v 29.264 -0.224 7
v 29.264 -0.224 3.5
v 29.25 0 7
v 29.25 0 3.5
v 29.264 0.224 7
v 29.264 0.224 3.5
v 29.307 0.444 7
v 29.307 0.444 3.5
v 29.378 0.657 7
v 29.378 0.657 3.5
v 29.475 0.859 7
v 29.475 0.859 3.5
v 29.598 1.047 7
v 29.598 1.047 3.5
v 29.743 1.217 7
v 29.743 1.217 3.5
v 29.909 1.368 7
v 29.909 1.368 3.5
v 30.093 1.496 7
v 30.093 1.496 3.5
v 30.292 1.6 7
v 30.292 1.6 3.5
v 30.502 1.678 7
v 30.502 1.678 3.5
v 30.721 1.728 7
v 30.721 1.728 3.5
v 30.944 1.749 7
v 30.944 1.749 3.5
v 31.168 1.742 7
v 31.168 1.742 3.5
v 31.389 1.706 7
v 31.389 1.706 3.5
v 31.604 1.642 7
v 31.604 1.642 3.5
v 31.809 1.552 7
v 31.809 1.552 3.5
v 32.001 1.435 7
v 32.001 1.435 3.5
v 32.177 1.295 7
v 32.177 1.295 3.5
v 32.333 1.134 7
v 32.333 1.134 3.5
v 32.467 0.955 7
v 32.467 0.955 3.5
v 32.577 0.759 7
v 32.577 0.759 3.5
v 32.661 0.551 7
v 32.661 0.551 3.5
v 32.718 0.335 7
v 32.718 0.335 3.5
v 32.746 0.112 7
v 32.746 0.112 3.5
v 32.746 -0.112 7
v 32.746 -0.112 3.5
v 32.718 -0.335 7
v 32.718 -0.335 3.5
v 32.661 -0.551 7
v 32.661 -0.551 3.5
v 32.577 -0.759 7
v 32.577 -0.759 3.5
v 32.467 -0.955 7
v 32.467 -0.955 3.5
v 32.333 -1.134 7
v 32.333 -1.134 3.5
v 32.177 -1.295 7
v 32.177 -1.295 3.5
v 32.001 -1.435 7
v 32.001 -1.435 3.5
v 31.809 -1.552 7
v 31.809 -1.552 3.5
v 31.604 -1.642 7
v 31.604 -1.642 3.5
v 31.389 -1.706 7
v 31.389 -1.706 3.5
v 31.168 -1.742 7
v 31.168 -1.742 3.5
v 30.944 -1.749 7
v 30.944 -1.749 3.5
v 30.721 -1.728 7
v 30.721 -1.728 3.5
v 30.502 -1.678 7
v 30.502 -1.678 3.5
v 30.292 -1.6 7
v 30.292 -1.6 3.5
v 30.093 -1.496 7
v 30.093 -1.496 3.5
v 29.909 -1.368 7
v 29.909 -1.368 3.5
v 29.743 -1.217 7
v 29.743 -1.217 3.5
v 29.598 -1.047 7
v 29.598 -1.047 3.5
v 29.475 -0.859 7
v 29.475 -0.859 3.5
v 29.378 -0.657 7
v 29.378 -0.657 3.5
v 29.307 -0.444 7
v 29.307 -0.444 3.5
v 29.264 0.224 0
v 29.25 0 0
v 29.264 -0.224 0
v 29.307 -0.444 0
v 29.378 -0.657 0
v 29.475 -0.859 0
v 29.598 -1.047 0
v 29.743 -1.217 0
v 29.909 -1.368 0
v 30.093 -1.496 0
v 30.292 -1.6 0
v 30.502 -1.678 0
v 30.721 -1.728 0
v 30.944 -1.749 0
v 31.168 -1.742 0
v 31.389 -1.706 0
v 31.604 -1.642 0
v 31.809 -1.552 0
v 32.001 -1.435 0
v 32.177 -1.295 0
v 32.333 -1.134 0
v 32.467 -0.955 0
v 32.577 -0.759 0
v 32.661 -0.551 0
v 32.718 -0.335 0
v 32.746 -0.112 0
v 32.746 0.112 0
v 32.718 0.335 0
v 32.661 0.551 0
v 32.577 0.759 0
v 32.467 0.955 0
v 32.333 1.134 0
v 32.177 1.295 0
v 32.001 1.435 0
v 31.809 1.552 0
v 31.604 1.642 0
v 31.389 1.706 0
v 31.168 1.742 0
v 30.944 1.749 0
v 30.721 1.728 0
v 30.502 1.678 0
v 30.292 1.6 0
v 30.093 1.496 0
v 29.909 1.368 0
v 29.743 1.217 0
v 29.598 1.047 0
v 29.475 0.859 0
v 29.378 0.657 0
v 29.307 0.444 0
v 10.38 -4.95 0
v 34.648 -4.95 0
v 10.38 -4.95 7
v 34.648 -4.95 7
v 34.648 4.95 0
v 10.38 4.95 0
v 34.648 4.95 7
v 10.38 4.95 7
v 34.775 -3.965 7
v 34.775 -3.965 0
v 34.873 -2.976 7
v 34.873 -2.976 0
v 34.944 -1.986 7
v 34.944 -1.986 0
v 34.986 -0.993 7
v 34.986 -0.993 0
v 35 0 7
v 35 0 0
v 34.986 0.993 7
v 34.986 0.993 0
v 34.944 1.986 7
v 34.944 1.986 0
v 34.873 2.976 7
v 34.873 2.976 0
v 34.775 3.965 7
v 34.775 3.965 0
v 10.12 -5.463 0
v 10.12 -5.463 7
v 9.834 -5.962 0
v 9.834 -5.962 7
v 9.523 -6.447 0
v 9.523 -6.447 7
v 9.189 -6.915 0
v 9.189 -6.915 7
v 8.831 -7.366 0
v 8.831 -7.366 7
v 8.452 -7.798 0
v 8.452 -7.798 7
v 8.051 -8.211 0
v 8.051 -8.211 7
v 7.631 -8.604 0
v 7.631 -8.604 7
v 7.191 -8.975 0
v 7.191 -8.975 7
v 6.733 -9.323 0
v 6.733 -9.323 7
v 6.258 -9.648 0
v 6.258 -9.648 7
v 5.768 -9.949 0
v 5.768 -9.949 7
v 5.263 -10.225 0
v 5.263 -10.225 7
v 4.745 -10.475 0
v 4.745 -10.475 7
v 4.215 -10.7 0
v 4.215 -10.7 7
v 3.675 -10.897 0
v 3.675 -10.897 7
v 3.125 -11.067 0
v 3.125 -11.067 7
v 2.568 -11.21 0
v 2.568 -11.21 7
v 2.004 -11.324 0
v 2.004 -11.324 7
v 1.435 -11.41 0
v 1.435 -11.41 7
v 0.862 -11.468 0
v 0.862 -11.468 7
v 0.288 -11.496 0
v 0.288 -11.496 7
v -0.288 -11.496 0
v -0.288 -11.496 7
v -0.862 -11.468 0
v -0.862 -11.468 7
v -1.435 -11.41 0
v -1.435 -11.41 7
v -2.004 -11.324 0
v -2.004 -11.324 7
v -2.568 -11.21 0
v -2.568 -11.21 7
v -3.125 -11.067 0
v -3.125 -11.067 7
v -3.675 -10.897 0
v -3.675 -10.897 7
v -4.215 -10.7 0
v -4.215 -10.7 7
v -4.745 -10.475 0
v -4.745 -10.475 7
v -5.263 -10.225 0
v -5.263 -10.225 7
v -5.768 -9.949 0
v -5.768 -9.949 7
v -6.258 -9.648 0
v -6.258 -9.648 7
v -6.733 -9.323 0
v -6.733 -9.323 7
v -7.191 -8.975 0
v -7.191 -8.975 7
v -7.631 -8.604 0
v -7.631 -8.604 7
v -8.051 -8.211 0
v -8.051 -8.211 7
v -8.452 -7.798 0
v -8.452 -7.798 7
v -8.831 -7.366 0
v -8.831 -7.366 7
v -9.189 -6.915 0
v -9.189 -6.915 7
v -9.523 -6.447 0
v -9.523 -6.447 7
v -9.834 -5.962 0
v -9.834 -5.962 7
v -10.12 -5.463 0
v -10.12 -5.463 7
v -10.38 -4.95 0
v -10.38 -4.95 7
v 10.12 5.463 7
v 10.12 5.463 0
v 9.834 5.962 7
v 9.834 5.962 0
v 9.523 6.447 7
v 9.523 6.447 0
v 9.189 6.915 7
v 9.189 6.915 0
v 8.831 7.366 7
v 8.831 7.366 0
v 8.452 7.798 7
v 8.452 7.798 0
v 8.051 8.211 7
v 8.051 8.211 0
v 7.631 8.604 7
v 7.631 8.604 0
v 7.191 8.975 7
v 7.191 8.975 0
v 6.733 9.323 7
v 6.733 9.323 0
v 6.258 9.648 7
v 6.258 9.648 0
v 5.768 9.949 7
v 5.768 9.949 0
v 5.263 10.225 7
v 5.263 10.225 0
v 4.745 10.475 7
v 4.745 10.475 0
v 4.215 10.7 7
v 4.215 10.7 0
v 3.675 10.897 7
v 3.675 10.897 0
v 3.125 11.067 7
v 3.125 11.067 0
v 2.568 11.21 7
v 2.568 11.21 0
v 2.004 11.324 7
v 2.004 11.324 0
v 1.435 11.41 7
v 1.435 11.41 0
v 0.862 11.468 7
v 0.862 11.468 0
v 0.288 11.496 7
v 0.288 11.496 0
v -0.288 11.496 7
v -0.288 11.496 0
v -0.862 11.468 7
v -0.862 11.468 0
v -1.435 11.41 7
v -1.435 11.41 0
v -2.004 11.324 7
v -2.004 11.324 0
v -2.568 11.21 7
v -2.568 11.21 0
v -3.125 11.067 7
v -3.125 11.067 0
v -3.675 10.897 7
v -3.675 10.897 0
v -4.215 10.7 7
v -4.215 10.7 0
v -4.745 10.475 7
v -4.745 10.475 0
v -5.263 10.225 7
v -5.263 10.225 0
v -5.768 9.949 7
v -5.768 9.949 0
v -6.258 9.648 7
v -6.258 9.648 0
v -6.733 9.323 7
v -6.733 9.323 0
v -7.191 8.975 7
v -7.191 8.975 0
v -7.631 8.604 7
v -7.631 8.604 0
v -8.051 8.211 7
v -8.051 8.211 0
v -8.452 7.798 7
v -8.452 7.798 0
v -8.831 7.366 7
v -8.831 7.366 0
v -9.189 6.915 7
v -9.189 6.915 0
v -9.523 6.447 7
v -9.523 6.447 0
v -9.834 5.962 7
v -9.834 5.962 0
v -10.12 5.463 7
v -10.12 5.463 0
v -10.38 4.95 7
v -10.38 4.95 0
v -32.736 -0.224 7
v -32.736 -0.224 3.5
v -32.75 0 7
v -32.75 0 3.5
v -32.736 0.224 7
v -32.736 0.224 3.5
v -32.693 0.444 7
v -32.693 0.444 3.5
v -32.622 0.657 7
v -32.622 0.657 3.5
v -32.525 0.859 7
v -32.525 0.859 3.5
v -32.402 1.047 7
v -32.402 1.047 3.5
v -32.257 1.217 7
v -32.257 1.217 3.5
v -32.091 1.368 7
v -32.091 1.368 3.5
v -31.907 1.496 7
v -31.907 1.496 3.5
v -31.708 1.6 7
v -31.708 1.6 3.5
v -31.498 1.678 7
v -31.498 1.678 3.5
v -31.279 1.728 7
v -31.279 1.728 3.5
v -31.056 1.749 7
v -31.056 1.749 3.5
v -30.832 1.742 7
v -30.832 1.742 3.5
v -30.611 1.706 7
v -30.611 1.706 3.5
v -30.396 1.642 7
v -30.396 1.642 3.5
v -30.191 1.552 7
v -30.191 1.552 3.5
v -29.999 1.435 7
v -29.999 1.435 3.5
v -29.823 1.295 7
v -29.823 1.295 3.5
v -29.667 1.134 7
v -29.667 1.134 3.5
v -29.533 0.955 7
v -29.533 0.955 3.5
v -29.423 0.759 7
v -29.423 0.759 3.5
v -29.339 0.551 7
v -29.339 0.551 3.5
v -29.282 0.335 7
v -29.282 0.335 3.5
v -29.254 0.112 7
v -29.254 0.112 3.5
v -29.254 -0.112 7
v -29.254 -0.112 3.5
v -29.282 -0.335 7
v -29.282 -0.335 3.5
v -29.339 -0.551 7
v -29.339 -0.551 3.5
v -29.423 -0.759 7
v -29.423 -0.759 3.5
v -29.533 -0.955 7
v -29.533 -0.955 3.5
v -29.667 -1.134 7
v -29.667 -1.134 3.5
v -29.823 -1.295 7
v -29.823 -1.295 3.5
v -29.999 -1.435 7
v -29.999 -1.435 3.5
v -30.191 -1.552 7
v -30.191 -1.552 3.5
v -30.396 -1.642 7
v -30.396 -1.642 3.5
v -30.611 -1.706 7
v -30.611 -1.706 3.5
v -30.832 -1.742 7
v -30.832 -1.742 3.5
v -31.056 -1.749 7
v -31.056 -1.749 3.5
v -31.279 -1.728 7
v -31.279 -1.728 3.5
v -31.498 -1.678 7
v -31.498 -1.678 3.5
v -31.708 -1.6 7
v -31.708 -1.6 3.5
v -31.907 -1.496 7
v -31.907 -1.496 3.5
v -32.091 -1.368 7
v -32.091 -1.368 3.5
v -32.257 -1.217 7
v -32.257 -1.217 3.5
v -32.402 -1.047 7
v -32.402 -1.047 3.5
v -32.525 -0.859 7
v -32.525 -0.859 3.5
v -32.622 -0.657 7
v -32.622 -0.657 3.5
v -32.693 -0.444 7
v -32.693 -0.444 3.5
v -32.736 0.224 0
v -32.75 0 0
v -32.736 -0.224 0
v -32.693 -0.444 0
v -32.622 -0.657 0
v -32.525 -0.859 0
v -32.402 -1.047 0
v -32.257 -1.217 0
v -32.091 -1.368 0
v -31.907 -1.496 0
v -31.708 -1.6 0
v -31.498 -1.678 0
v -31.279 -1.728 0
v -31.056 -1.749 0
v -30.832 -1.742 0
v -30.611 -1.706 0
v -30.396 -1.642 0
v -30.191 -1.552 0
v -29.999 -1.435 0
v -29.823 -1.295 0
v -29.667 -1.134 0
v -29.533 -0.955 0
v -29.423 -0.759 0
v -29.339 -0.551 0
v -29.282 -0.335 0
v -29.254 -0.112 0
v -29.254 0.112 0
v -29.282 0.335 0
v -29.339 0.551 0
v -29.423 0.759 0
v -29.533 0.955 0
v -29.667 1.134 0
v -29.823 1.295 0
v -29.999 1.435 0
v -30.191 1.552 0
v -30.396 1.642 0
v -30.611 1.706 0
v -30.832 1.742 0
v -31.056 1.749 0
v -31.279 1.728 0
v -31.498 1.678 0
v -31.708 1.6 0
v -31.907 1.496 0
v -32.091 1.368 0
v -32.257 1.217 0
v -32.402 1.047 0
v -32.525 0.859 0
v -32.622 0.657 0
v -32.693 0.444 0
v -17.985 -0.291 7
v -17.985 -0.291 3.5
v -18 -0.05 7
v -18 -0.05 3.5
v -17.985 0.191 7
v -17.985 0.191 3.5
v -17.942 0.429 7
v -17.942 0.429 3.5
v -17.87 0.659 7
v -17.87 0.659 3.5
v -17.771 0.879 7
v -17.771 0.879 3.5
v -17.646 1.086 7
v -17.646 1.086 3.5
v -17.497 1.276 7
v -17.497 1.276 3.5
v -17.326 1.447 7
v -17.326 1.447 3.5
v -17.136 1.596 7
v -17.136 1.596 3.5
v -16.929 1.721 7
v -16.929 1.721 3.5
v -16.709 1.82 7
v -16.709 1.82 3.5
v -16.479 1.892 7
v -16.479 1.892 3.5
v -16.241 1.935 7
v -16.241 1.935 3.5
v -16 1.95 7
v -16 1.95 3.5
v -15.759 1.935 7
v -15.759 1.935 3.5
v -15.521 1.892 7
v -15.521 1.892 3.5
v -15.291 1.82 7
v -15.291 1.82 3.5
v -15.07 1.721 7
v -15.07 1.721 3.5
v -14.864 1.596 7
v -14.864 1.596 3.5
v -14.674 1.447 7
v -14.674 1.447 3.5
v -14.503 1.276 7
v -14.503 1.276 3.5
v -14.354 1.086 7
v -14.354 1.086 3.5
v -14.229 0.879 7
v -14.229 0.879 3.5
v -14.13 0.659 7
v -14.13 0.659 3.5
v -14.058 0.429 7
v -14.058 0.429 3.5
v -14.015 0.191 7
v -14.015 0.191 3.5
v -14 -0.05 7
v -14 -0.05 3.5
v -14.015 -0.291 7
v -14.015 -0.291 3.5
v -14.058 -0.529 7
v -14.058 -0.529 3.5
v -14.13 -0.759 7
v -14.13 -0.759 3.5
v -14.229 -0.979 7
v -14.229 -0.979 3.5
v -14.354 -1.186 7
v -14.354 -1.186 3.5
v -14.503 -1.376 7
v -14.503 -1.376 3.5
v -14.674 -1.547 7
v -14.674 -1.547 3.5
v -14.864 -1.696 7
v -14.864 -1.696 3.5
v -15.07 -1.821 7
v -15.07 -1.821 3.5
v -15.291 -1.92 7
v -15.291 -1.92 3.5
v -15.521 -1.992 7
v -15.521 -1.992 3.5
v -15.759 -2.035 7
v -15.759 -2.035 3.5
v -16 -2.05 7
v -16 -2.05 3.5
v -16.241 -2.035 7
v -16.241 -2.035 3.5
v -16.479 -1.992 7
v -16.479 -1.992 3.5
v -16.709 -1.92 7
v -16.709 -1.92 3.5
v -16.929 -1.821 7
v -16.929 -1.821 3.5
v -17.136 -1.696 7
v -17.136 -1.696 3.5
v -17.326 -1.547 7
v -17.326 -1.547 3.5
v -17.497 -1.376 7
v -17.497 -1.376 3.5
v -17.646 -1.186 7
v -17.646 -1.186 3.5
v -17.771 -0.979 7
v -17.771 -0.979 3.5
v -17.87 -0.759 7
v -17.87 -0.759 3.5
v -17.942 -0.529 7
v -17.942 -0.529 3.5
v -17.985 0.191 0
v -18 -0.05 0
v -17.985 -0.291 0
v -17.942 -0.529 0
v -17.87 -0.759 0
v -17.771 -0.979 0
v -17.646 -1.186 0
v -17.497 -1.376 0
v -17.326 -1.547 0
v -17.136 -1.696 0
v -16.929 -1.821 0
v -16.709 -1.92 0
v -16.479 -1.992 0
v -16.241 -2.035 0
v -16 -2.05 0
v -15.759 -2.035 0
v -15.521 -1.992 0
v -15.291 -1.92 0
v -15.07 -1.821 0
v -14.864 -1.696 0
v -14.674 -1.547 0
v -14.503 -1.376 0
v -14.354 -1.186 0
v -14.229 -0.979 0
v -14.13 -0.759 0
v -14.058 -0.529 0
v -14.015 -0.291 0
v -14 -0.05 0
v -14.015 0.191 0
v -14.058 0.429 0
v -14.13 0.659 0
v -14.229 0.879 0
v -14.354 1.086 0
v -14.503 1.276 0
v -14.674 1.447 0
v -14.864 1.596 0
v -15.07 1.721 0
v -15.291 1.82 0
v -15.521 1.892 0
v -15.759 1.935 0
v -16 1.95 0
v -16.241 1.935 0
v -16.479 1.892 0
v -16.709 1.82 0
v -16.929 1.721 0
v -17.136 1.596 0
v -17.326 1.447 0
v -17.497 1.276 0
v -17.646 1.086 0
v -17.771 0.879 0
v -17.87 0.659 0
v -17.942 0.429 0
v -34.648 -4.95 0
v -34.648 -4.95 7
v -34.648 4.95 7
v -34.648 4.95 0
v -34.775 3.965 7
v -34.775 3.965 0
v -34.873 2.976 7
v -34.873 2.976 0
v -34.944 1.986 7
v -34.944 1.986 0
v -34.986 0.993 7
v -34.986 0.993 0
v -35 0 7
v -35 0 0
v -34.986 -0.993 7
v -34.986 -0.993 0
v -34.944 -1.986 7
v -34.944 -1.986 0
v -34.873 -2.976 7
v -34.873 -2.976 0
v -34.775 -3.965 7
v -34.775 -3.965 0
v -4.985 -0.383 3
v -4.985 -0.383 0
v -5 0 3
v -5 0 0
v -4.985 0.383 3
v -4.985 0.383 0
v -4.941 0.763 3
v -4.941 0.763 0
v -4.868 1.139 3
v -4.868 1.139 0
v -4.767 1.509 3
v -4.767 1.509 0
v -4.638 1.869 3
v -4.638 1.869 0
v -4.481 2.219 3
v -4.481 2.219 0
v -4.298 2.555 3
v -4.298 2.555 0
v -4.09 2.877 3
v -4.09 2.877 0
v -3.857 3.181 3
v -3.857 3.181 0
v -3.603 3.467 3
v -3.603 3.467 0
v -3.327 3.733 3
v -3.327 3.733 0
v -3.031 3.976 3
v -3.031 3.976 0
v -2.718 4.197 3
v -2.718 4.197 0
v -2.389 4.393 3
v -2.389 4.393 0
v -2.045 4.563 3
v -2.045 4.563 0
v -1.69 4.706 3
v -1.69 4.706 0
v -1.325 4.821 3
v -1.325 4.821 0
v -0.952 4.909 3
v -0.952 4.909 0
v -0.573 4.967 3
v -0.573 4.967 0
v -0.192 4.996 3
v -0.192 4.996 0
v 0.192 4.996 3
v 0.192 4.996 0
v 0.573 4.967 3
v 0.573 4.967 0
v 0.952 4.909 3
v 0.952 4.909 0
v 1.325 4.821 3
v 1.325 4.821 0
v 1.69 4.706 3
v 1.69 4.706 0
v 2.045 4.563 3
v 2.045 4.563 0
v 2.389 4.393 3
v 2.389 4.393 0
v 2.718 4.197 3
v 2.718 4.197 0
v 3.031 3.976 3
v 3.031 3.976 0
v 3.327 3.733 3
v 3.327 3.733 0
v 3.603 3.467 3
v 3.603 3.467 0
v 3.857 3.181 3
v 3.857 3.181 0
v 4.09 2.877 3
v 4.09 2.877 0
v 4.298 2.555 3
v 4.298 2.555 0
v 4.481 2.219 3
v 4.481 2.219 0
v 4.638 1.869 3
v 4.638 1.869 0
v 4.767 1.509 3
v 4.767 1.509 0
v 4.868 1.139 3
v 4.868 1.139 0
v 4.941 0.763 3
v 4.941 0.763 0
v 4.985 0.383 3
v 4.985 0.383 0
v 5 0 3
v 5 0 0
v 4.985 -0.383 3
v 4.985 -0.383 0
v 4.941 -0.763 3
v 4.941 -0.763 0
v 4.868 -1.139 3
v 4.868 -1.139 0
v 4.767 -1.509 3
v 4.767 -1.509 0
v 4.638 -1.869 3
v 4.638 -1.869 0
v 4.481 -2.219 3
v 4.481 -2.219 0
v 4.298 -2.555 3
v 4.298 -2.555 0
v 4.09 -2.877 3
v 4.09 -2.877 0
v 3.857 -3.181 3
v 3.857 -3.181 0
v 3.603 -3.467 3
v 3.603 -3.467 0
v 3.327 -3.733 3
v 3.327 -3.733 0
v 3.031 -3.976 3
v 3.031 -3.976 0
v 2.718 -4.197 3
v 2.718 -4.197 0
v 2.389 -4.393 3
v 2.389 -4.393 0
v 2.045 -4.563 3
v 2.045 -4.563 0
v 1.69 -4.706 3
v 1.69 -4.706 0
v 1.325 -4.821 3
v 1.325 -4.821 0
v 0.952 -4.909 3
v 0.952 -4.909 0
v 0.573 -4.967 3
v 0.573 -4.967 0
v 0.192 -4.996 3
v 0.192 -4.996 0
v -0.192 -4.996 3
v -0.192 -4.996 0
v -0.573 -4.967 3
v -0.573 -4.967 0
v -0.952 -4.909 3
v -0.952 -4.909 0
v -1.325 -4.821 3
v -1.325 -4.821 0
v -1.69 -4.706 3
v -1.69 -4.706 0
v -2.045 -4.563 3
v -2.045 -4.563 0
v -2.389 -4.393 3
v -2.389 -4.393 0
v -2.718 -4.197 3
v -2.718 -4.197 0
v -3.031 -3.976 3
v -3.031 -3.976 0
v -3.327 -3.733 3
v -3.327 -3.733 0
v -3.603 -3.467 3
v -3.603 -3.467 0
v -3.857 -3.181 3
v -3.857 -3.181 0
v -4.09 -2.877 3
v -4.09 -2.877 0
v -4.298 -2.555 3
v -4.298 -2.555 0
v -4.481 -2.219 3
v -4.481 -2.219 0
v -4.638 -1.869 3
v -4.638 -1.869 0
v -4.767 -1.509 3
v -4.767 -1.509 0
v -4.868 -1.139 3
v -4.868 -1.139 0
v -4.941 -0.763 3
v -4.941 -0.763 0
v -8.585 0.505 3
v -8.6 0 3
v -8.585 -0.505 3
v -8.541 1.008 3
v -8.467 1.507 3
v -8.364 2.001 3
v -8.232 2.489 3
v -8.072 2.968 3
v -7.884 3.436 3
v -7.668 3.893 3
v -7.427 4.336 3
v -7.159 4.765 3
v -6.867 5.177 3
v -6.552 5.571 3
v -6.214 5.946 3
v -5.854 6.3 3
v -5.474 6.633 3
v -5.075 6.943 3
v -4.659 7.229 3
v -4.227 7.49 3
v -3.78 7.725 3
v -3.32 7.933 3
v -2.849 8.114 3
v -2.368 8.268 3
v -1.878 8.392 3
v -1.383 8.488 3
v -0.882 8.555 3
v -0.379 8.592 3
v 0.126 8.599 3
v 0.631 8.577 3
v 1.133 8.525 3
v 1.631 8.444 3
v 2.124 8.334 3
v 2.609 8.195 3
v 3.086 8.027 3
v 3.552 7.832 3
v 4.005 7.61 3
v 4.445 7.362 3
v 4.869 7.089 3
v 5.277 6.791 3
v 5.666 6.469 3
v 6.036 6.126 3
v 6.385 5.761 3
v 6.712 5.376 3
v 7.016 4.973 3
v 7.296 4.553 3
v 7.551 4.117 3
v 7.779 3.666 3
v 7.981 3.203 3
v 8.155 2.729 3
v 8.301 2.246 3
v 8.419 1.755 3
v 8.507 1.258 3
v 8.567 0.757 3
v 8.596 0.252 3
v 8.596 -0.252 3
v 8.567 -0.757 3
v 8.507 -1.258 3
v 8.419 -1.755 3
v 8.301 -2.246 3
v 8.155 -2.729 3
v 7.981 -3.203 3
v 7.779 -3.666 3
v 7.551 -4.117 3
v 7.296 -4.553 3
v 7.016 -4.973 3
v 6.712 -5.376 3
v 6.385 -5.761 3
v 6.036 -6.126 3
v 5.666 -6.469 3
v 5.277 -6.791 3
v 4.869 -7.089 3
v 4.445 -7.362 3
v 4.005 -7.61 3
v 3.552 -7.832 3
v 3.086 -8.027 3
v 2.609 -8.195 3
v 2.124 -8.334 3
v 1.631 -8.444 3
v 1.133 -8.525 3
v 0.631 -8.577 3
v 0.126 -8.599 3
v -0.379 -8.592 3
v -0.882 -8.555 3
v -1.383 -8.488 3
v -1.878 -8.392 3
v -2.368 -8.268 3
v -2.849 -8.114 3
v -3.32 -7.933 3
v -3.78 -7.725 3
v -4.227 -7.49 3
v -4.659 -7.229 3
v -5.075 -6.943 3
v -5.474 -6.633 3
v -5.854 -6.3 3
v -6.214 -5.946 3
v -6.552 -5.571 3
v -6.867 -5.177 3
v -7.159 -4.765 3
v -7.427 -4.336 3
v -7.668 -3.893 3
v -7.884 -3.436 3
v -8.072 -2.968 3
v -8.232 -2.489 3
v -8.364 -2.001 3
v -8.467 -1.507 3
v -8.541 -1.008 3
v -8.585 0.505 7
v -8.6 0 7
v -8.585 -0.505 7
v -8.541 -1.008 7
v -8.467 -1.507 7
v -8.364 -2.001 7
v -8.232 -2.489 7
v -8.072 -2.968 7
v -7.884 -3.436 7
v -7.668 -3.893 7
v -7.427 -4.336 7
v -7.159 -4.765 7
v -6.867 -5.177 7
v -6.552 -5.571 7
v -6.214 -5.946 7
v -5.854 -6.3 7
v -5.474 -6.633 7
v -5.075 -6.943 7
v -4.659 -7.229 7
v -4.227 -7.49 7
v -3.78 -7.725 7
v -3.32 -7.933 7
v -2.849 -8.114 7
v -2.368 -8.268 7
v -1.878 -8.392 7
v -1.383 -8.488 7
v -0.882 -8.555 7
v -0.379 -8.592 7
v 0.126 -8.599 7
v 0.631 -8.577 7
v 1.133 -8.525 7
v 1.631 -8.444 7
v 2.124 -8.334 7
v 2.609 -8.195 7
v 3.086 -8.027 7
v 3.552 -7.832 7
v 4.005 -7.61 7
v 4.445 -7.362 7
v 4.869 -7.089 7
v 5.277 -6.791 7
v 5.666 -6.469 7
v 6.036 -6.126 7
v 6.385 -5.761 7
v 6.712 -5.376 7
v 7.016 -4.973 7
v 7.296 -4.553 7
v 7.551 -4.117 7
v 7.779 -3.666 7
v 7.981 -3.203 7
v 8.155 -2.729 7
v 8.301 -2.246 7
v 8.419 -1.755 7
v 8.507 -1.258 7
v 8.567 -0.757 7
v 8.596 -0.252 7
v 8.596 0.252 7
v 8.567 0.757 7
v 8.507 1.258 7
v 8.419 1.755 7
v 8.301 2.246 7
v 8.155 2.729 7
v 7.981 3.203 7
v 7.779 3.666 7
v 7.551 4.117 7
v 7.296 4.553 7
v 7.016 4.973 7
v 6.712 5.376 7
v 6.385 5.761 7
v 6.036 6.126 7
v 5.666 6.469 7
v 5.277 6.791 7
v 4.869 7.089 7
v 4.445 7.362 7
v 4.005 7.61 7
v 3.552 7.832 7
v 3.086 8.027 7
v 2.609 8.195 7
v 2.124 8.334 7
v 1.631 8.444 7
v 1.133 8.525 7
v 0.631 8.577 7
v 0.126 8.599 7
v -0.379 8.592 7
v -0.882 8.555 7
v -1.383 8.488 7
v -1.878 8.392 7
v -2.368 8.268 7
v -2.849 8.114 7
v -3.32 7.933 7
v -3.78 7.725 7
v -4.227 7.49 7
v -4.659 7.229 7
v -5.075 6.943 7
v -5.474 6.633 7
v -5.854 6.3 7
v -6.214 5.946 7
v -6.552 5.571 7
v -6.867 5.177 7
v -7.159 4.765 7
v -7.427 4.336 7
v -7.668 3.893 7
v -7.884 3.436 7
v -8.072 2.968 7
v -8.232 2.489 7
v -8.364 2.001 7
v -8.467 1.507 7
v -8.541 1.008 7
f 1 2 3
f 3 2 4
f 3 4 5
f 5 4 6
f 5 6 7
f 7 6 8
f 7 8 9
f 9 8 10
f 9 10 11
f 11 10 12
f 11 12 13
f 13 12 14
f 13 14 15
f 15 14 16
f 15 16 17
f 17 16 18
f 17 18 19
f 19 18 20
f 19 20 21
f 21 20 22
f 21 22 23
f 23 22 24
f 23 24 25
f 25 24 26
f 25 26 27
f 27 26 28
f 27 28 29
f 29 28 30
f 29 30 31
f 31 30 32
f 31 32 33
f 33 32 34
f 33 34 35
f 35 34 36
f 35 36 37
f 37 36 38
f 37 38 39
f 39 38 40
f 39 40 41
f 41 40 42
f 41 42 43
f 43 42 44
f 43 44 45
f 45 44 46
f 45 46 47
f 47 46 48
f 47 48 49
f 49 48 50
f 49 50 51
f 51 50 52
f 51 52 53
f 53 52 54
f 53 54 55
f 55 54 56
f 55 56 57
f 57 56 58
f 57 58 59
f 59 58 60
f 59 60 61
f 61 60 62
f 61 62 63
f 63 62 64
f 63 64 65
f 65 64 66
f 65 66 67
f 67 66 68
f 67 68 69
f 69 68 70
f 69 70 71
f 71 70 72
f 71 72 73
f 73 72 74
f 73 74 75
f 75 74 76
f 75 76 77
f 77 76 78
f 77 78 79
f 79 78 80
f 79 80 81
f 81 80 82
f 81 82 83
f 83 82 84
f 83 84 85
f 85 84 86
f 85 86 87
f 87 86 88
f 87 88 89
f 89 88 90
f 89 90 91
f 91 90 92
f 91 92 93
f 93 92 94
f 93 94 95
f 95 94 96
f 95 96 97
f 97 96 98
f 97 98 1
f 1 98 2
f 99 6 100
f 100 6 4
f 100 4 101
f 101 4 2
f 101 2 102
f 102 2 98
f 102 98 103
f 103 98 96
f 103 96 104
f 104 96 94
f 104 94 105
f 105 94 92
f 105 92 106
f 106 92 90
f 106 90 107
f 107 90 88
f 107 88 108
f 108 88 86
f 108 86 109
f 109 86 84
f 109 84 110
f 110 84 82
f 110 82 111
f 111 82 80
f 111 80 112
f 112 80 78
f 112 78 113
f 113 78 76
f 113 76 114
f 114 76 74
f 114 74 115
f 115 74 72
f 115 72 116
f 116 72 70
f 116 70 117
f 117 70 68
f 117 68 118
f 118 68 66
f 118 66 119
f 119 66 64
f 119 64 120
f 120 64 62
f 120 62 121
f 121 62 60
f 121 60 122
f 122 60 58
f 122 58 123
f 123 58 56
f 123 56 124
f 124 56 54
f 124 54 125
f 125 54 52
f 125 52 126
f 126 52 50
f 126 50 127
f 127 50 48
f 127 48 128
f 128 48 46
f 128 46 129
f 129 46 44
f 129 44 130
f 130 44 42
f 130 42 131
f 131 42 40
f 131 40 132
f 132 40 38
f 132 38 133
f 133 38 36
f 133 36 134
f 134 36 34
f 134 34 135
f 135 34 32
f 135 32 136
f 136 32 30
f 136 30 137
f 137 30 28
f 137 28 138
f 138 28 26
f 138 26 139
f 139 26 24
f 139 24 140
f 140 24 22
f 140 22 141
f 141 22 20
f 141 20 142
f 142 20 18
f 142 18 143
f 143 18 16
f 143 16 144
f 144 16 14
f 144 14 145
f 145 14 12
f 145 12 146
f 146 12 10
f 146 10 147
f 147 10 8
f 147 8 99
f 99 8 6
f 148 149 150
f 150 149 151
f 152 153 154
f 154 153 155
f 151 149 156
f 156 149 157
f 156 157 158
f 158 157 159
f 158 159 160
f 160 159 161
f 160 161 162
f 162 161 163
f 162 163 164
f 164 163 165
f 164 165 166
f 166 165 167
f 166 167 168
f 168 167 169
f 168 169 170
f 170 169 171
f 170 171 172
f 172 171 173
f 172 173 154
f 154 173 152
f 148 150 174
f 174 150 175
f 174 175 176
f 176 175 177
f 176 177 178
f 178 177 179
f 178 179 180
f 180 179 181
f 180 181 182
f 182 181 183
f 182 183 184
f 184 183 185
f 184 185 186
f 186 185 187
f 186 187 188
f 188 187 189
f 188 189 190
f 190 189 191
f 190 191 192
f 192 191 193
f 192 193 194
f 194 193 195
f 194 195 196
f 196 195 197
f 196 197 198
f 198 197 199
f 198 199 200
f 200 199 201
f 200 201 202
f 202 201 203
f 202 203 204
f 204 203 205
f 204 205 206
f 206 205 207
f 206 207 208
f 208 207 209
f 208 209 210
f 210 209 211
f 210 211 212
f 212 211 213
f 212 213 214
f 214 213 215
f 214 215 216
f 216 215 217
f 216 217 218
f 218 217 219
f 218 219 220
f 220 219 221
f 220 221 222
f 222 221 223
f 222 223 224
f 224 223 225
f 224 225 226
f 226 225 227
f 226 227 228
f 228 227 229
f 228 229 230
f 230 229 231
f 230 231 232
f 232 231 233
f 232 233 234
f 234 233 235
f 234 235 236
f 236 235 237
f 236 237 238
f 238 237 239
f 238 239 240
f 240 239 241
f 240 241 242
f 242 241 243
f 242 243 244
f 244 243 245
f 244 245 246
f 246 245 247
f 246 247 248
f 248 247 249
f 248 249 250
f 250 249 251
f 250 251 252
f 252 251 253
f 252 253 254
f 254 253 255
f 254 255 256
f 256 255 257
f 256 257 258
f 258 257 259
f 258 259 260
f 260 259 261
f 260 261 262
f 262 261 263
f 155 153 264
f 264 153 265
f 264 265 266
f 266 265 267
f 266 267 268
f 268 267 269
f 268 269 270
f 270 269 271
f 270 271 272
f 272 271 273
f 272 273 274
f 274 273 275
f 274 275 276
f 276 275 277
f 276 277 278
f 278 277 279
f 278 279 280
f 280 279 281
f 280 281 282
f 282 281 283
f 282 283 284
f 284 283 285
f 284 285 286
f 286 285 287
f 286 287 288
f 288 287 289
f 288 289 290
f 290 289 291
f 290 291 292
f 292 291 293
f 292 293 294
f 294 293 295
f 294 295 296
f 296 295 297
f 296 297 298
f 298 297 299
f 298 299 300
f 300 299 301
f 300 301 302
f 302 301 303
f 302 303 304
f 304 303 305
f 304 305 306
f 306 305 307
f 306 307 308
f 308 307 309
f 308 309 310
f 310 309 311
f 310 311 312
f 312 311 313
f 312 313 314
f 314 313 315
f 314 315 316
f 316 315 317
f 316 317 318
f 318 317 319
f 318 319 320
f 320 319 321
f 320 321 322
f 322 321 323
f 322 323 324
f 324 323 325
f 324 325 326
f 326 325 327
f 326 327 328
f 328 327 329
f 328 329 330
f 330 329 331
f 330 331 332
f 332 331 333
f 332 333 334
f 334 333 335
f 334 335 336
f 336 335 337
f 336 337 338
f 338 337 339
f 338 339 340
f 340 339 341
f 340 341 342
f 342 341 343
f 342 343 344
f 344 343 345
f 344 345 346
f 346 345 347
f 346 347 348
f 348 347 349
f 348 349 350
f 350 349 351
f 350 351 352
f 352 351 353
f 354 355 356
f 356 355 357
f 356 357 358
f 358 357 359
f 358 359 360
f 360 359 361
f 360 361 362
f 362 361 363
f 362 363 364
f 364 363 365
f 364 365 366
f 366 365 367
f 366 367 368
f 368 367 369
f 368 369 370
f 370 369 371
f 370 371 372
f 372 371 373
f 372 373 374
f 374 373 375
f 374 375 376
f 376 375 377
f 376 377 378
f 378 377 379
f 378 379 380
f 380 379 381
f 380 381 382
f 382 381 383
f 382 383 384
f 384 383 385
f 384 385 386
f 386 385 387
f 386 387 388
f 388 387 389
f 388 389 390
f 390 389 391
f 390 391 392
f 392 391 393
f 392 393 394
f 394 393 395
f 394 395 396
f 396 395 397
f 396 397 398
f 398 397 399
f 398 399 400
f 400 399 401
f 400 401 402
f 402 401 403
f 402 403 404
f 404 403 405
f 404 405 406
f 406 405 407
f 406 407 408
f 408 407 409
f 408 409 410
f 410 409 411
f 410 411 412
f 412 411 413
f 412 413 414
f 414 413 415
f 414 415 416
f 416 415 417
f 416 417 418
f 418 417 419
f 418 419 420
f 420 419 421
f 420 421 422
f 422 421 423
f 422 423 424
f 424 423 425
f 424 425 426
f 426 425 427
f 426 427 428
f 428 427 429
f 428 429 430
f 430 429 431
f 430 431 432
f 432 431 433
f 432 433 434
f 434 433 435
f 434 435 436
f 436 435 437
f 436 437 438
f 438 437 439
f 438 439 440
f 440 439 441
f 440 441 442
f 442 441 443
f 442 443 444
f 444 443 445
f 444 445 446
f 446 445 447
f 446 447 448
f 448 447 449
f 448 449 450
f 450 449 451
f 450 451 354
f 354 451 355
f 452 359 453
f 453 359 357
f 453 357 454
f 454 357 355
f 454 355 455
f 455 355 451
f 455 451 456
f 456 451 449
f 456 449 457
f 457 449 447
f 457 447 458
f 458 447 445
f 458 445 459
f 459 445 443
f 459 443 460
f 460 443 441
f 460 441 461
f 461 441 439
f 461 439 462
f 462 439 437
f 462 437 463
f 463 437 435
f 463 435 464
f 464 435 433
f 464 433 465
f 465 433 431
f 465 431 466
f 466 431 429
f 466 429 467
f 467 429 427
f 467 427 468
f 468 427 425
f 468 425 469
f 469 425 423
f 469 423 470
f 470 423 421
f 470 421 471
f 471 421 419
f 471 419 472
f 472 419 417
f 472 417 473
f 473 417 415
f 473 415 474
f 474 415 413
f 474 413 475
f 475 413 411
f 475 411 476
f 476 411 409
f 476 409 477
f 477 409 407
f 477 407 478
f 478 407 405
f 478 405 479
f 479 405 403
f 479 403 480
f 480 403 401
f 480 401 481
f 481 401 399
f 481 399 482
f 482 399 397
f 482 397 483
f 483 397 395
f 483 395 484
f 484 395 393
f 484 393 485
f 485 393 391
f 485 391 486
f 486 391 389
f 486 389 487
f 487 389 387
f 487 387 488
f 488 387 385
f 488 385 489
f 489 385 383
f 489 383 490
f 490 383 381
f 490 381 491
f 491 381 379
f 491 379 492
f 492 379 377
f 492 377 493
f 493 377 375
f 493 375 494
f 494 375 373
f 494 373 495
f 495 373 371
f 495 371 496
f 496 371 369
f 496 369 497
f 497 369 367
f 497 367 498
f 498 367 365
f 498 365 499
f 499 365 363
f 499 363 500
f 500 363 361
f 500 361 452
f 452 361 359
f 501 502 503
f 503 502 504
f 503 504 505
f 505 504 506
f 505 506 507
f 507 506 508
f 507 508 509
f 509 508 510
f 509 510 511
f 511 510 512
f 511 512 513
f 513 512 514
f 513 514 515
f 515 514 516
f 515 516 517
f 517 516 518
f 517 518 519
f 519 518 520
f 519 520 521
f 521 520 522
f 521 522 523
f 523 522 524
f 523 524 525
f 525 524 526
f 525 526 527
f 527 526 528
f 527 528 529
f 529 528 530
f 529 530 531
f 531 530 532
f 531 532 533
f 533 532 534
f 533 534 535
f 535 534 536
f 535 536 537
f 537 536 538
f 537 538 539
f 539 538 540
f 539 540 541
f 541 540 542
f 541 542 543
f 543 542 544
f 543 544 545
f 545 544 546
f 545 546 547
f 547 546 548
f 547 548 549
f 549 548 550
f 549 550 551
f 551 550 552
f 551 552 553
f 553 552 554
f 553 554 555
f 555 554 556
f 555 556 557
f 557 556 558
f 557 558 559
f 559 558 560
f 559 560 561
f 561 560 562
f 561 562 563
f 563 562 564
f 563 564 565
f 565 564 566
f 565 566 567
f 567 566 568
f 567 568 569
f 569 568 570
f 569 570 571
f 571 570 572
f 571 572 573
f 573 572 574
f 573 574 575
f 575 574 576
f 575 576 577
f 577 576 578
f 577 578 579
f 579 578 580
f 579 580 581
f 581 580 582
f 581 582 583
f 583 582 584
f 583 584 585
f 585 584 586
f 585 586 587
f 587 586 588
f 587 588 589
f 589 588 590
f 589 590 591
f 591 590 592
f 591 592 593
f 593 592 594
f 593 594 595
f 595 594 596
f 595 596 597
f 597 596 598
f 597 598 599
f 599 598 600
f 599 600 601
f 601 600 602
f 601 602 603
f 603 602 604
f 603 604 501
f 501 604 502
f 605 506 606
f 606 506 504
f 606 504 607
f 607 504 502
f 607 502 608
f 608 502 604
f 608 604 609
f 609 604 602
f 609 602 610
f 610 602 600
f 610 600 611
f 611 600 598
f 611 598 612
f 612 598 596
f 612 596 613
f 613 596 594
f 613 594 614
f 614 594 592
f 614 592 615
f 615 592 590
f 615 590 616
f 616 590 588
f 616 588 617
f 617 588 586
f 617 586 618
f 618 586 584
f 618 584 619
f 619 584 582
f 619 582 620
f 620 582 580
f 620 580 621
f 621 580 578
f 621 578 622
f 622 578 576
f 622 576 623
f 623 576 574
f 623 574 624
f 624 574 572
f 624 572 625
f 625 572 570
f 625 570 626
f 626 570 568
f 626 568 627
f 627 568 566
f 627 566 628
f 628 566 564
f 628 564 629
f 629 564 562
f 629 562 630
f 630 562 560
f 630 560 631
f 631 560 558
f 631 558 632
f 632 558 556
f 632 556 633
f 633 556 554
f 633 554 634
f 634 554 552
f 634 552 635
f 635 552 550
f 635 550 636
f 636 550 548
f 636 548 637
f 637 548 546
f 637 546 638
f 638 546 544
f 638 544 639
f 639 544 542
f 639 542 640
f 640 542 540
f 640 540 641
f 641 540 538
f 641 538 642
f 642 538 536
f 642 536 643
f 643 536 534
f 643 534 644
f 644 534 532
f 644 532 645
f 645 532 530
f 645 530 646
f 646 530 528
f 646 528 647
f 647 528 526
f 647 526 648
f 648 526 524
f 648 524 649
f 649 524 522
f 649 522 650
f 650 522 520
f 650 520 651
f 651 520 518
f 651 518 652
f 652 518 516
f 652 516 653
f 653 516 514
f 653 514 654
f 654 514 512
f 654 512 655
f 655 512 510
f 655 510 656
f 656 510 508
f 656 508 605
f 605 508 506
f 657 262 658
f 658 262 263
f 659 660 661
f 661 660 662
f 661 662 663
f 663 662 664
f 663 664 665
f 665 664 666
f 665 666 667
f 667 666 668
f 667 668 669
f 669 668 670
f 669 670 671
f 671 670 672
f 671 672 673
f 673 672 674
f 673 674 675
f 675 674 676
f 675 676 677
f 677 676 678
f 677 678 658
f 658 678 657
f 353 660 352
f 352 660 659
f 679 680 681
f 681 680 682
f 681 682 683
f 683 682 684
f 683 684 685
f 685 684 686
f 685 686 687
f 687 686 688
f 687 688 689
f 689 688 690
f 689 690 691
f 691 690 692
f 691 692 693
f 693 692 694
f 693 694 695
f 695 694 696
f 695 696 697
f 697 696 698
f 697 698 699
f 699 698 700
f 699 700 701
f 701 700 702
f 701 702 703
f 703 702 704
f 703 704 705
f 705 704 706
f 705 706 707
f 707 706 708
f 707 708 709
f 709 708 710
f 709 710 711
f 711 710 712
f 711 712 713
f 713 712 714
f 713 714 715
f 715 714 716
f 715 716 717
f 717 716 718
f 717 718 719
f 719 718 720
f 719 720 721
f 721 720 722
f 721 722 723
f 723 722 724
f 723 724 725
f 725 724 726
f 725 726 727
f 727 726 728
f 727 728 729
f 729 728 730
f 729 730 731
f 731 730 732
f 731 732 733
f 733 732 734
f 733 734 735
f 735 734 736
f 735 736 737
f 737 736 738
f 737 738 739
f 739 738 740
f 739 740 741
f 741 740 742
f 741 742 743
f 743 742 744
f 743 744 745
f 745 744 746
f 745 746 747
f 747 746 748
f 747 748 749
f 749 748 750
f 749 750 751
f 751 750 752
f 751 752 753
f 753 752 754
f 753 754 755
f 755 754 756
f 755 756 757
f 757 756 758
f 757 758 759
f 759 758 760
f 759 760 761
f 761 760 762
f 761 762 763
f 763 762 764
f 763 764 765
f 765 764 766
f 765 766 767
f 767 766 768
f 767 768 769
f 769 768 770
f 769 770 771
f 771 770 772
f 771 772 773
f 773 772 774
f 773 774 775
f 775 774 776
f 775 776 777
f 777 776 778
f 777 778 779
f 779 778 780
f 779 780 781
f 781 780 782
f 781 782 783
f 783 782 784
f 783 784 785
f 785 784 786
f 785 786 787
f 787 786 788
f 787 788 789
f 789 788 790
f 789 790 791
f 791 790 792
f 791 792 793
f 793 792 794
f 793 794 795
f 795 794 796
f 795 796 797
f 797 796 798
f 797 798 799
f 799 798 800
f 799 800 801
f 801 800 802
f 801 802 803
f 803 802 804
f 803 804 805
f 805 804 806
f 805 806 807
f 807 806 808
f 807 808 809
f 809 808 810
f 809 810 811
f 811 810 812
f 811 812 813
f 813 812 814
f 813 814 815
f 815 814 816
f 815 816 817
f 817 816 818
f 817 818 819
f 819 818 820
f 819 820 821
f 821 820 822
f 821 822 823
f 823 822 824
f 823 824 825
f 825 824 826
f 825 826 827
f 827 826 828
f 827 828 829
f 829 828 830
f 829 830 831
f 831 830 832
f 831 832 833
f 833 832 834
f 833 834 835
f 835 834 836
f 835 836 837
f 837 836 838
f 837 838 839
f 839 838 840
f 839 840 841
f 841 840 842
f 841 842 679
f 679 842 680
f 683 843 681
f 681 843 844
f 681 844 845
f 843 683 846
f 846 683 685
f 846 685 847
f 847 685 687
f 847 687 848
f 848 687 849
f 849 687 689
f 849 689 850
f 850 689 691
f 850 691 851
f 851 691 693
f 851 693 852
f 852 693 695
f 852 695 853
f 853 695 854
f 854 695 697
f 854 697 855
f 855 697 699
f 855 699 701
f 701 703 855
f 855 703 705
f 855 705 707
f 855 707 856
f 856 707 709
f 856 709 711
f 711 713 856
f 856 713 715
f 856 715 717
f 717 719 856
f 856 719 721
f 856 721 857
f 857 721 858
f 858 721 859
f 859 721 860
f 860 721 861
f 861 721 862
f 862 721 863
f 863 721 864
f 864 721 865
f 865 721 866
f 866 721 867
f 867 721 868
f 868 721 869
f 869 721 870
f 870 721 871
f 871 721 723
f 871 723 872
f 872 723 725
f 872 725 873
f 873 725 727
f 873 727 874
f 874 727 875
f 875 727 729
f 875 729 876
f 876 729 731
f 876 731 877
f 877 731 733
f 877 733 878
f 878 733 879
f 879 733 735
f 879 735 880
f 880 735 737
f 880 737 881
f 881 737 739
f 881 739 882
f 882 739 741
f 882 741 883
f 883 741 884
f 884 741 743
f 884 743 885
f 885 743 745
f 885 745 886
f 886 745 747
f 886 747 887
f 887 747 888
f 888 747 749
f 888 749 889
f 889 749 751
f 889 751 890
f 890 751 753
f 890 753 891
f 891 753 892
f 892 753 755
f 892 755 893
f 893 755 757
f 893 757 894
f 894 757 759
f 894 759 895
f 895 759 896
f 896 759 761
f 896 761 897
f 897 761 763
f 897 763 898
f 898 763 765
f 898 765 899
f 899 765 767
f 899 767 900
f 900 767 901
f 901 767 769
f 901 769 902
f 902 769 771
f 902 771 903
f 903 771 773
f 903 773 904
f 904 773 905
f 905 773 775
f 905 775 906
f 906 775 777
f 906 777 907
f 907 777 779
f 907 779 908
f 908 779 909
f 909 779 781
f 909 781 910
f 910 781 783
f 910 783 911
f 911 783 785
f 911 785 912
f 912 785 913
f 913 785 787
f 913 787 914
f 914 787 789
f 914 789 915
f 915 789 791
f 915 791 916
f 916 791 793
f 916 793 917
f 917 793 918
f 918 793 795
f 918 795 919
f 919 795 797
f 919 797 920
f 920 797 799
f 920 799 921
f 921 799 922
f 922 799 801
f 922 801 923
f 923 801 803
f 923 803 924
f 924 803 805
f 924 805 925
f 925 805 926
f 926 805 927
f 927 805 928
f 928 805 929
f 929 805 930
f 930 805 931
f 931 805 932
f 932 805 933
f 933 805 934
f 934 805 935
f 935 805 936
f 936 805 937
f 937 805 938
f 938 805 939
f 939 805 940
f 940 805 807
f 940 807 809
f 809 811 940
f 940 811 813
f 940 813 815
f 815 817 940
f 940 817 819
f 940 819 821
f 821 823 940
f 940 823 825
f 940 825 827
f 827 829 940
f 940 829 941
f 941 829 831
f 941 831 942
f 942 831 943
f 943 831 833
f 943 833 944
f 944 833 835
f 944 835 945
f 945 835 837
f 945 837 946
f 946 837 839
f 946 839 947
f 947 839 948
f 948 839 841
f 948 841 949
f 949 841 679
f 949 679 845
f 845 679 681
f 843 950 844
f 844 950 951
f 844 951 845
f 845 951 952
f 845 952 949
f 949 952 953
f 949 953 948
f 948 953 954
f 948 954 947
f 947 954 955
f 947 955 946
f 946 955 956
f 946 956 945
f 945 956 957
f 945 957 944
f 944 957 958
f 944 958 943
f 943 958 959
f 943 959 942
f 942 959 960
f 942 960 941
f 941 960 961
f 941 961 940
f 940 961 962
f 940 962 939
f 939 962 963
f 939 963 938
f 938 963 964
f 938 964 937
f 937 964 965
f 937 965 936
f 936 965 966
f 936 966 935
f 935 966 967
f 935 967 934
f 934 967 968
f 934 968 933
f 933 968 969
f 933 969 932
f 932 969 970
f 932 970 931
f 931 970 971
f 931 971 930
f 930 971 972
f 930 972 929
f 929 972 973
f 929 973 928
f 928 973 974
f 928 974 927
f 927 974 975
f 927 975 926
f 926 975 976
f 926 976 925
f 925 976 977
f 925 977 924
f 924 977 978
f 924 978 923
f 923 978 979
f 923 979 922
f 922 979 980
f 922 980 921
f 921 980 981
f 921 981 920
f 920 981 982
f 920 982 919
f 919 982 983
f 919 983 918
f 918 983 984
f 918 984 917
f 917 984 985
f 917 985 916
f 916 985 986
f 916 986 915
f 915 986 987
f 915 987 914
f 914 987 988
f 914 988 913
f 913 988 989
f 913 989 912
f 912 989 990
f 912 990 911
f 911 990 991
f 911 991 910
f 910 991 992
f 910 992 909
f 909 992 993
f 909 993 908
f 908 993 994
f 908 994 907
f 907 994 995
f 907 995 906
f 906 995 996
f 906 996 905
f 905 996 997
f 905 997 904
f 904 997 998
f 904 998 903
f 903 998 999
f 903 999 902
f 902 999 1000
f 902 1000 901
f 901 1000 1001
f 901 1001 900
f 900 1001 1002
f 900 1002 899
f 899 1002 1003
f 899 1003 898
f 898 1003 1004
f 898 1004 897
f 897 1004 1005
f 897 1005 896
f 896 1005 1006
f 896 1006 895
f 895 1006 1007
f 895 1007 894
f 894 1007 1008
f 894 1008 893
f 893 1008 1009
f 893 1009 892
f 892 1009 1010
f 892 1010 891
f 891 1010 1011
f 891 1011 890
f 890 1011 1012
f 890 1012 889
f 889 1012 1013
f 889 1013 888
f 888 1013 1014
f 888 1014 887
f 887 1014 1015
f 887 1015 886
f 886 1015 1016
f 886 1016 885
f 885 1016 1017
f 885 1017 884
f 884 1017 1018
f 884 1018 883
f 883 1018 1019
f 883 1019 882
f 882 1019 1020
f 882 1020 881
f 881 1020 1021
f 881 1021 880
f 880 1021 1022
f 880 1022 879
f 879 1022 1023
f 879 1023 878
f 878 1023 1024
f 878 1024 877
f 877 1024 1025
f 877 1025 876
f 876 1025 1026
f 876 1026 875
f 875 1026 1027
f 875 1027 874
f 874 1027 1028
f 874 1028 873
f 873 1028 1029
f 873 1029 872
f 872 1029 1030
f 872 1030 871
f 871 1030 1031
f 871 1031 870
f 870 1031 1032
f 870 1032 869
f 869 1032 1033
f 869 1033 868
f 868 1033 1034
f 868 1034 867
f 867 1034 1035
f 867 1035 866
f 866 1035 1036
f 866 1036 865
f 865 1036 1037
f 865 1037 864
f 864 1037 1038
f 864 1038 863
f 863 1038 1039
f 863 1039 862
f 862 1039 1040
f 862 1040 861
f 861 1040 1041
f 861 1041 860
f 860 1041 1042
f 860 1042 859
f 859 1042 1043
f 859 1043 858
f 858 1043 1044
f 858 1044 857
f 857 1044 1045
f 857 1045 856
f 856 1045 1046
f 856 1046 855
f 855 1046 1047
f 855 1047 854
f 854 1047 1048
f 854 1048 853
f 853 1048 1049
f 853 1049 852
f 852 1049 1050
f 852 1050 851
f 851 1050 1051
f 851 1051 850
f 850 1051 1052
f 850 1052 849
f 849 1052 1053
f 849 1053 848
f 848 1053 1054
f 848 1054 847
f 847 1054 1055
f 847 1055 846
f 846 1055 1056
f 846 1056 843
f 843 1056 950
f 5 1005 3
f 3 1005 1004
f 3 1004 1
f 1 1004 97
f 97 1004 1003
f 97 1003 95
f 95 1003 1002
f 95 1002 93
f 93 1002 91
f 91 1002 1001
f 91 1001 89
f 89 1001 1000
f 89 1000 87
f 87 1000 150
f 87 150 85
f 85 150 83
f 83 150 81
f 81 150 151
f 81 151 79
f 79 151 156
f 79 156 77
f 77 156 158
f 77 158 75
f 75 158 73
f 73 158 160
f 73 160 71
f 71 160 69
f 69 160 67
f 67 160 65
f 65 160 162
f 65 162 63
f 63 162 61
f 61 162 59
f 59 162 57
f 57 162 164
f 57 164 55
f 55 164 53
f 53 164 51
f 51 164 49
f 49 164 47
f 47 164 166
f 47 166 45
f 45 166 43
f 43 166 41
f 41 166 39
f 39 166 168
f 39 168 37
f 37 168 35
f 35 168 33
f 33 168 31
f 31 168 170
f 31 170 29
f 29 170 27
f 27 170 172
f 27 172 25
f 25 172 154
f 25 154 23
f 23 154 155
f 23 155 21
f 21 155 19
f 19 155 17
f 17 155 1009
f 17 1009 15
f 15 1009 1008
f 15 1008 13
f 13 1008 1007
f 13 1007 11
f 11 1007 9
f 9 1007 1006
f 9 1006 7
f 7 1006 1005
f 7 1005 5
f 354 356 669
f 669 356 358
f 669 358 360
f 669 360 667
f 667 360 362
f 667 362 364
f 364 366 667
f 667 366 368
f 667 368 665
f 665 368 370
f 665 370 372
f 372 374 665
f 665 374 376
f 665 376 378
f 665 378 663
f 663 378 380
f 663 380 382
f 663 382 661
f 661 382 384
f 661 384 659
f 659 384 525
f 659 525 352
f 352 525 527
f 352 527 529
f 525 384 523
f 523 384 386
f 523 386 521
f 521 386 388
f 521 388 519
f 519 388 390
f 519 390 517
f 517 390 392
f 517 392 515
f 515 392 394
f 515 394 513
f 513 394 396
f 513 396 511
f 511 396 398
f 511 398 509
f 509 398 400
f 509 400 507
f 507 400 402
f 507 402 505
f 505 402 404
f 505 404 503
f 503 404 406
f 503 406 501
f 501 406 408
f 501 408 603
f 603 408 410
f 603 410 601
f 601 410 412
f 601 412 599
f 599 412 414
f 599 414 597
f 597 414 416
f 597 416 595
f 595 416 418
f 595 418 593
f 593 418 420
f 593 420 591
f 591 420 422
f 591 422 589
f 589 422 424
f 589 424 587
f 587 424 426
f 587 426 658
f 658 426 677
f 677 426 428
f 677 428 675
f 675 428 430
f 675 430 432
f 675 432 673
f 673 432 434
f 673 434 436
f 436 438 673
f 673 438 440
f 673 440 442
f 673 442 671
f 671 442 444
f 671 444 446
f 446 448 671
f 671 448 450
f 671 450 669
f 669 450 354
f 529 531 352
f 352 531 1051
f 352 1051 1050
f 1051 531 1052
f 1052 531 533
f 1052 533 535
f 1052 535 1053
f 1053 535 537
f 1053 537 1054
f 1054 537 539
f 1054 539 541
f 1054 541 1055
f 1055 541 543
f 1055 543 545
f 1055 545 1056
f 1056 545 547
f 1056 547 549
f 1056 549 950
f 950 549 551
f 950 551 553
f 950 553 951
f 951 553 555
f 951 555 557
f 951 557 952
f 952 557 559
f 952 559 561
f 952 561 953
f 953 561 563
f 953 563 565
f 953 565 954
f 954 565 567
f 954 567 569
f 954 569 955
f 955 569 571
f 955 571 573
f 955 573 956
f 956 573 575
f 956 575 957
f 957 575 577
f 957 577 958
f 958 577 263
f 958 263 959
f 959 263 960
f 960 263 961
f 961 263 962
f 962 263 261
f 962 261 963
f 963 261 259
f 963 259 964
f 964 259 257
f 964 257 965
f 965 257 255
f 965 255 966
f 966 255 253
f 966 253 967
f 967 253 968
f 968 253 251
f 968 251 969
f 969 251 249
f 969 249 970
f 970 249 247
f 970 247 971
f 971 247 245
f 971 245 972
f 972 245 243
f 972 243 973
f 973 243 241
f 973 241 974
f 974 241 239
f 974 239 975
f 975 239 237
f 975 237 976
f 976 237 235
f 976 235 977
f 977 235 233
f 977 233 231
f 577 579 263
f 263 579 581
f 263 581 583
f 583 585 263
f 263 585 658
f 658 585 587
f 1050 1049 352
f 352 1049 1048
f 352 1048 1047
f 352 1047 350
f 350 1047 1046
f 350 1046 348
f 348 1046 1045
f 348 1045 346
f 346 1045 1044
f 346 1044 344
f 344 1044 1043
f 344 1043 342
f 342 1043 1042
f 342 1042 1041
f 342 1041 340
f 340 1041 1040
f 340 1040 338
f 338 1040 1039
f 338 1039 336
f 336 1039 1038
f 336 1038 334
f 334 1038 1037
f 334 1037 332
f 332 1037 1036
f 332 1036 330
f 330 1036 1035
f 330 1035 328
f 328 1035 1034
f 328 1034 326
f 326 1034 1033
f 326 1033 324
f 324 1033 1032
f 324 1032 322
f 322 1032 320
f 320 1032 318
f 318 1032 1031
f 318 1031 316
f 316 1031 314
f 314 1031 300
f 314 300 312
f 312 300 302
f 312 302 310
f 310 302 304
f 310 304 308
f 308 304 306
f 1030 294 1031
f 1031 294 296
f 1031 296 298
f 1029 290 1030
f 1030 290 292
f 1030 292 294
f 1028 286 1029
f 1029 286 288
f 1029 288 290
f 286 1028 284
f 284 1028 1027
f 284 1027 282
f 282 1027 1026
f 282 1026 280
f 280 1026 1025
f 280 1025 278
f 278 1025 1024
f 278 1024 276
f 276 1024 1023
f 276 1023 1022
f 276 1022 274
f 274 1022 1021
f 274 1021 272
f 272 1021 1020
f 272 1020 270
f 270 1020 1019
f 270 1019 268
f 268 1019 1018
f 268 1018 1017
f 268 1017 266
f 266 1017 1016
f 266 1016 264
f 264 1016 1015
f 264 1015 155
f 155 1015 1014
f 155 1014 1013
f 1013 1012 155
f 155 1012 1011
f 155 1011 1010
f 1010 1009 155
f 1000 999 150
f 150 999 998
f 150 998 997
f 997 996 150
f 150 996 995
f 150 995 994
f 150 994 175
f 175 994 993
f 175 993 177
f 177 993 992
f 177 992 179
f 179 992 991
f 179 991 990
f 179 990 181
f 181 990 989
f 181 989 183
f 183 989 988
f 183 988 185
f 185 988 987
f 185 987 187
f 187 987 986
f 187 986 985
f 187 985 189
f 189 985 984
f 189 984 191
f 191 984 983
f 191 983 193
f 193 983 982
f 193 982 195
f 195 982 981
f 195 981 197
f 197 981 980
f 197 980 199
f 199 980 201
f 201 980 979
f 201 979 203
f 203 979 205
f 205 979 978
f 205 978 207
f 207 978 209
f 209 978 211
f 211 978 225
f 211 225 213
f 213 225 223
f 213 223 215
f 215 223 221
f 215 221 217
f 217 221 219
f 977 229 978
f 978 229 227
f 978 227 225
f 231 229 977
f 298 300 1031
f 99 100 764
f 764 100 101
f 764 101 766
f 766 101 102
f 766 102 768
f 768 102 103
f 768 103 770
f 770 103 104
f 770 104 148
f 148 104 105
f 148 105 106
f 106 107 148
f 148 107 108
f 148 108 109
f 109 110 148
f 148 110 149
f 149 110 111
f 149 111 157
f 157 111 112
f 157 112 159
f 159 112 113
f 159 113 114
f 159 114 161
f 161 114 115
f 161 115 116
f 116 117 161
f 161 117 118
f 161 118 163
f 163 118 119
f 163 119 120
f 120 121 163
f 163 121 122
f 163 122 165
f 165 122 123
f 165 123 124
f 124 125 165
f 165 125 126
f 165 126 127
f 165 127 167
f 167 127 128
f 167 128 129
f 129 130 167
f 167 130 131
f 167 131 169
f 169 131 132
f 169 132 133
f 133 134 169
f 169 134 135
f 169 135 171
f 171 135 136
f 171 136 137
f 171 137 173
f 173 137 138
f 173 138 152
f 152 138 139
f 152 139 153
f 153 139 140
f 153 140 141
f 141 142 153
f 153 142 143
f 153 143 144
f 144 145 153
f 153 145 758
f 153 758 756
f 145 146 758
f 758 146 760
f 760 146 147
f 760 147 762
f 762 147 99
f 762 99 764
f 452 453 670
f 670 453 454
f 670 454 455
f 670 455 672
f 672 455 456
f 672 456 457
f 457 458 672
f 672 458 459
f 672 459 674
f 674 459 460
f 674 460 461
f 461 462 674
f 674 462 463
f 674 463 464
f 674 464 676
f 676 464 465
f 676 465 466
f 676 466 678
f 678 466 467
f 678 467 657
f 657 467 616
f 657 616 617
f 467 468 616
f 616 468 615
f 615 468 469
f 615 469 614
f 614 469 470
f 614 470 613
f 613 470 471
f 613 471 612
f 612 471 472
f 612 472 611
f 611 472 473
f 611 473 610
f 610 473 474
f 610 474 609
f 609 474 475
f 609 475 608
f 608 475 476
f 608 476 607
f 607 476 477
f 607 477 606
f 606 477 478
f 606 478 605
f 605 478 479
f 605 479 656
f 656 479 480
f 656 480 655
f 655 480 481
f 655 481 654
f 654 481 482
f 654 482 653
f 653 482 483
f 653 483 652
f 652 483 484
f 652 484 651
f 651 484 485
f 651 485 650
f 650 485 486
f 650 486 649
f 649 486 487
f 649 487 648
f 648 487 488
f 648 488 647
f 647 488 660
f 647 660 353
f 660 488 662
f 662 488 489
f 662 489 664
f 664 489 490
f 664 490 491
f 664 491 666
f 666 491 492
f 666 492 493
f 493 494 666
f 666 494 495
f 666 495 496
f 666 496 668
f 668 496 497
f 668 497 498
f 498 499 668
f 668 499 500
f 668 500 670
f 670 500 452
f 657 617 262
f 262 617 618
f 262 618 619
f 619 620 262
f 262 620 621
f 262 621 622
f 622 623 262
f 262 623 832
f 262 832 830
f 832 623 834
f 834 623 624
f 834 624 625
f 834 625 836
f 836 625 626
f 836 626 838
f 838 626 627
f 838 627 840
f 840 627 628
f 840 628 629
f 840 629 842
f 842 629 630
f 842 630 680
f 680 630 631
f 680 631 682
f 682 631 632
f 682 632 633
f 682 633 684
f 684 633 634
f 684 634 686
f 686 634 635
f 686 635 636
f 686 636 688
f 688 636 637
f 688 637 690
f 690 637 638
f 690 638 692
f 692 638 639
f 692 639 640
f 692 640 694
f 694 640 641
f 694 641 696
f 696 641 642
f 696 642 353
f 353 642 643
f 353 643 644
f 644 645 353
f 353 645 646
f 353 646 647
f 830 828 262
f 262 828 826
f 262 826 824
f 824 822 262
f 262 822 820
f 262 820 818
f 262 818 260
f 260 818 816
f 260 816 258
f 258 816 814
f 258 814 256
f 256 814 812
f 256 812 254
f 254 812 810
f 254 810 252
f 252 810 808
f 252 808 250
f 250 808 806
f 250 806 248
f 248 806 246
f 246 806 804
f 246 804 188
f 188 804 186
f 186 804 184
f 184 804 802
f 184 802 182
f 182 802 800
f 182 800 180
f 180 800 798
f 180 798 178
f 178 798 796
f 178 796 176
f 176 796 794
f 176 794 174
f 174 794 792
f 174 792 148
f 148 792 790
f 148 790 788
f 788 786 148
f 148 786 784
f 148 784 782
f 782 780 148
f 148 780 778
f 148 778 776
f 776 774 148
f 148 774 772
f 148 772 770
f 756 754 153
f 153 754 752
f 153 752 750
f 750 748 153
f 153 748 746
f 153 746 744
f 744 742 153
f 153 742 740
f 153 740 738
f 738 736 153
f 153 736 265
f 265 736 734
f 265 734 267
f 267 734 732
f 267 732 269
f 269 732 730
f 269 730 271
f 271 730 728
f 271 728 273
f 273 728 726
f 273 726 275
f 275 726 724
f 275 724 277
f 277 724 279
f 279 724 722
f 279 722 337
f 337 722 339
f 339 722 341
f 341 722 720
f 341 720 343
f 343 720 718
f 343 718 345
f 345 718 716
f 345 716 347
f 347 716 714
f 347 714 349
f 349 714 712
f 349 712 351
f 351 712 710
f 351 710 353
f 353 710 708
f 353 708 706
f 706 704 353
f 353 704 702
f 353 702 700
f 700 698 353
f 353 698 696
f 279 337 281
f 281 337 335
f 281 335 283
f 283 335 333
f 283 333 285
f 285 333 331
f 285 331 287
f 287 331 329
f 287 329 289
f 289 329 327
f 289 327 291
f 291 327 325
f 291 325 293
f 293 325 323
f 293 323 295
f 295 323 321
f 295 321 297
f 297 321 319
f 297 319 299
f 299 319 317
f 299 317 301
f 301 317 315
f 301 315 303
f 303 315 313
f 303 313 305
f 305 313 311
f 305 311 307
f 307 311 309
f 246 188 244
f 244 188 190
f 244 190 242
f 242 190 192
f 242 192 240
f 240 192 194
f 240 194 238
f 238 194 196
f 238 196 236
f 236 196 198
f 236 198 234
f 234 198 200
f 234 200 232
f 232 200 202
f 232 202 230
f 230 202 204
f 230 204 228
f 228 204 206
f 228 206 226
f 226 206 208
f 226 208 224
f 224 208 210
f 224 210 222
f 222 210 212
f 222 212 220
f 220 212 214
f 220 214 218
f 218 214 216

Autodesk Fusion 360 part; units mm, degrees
sketch "Szkic1" plane through (0, 0, 0) normal (0, 0, 1) x (1, 0, 0)
  circle A0 centre (0, 0) radius 11.5
  circle A1 centre (0, 0) radius 8.6
  circle A2 centre (0, 0) radius 5
  dimension "d1" = 23
  dimension "d2" = 17.2
  dimension "d7" = 10
extrude "Wyciągnięcie proste1" add sketch "Szkic1" along normal blind 7 contours A0
extrude "Wyciągnięcie proste2" add sketch "Szkic1" along normal blind 3 contours A1
sketch "Szkic2" plane through (0, 0, 0) normal (0, 0, 1) x (1, 0, 0)
  line L0 (20, -5) -> (-20, -5)
  line L1 (-20, 5) -> (20, 5)
  line L2 (20, -5) -> (-20, 5) construction
  line L3 (-20, -5) -> (20, 5) construction
  line L4 (35, -4.95) -> (-35, -4.95)
  line L5 (-35, -4.95) -> (-35, 4.95)
  line L6 (-35, 4.95) -> (35, 4.95)
  line L7 (35, 4.95) -> (35, -4.95)
  line L8 (35, -4.95) -> (-35, 4.95) construction
  line L9 (-20, -5) -> (-24, -5)
  line L10 (-24, 5) -> (-20, 5)
  circle A0 centre (0, 0) radius 11.5
  line L11 (-35, -4.95) -> (-11.3867, -1.6104) construction
  line L12 (0, 0) -> (35, 4.95) construction
  circle A1 centre (0, 0) radius 35
  circle A2 centre (-31, 0) radius 1.75
  circle A3 centre (31, 0) radius 1.75
  circle A4 centre (-15.9999, -0.05) radius 2
  dimension "d9" = 10
  dimension "d10" = 70
  dimension "d11" = 9.9
  dimension "d36" = 3.5
  dimension "d37" = 4
  dimension "d38" = 4
  dimension "d68" = 4
  dimension "d69" = 5
  dimension "d70" = 16
extrude "Wyciągnięcie proste3" add sketch "Szkic2" along normal blind 7 contours L4 L6 A0 A1 | L4 L6 A0 A1
